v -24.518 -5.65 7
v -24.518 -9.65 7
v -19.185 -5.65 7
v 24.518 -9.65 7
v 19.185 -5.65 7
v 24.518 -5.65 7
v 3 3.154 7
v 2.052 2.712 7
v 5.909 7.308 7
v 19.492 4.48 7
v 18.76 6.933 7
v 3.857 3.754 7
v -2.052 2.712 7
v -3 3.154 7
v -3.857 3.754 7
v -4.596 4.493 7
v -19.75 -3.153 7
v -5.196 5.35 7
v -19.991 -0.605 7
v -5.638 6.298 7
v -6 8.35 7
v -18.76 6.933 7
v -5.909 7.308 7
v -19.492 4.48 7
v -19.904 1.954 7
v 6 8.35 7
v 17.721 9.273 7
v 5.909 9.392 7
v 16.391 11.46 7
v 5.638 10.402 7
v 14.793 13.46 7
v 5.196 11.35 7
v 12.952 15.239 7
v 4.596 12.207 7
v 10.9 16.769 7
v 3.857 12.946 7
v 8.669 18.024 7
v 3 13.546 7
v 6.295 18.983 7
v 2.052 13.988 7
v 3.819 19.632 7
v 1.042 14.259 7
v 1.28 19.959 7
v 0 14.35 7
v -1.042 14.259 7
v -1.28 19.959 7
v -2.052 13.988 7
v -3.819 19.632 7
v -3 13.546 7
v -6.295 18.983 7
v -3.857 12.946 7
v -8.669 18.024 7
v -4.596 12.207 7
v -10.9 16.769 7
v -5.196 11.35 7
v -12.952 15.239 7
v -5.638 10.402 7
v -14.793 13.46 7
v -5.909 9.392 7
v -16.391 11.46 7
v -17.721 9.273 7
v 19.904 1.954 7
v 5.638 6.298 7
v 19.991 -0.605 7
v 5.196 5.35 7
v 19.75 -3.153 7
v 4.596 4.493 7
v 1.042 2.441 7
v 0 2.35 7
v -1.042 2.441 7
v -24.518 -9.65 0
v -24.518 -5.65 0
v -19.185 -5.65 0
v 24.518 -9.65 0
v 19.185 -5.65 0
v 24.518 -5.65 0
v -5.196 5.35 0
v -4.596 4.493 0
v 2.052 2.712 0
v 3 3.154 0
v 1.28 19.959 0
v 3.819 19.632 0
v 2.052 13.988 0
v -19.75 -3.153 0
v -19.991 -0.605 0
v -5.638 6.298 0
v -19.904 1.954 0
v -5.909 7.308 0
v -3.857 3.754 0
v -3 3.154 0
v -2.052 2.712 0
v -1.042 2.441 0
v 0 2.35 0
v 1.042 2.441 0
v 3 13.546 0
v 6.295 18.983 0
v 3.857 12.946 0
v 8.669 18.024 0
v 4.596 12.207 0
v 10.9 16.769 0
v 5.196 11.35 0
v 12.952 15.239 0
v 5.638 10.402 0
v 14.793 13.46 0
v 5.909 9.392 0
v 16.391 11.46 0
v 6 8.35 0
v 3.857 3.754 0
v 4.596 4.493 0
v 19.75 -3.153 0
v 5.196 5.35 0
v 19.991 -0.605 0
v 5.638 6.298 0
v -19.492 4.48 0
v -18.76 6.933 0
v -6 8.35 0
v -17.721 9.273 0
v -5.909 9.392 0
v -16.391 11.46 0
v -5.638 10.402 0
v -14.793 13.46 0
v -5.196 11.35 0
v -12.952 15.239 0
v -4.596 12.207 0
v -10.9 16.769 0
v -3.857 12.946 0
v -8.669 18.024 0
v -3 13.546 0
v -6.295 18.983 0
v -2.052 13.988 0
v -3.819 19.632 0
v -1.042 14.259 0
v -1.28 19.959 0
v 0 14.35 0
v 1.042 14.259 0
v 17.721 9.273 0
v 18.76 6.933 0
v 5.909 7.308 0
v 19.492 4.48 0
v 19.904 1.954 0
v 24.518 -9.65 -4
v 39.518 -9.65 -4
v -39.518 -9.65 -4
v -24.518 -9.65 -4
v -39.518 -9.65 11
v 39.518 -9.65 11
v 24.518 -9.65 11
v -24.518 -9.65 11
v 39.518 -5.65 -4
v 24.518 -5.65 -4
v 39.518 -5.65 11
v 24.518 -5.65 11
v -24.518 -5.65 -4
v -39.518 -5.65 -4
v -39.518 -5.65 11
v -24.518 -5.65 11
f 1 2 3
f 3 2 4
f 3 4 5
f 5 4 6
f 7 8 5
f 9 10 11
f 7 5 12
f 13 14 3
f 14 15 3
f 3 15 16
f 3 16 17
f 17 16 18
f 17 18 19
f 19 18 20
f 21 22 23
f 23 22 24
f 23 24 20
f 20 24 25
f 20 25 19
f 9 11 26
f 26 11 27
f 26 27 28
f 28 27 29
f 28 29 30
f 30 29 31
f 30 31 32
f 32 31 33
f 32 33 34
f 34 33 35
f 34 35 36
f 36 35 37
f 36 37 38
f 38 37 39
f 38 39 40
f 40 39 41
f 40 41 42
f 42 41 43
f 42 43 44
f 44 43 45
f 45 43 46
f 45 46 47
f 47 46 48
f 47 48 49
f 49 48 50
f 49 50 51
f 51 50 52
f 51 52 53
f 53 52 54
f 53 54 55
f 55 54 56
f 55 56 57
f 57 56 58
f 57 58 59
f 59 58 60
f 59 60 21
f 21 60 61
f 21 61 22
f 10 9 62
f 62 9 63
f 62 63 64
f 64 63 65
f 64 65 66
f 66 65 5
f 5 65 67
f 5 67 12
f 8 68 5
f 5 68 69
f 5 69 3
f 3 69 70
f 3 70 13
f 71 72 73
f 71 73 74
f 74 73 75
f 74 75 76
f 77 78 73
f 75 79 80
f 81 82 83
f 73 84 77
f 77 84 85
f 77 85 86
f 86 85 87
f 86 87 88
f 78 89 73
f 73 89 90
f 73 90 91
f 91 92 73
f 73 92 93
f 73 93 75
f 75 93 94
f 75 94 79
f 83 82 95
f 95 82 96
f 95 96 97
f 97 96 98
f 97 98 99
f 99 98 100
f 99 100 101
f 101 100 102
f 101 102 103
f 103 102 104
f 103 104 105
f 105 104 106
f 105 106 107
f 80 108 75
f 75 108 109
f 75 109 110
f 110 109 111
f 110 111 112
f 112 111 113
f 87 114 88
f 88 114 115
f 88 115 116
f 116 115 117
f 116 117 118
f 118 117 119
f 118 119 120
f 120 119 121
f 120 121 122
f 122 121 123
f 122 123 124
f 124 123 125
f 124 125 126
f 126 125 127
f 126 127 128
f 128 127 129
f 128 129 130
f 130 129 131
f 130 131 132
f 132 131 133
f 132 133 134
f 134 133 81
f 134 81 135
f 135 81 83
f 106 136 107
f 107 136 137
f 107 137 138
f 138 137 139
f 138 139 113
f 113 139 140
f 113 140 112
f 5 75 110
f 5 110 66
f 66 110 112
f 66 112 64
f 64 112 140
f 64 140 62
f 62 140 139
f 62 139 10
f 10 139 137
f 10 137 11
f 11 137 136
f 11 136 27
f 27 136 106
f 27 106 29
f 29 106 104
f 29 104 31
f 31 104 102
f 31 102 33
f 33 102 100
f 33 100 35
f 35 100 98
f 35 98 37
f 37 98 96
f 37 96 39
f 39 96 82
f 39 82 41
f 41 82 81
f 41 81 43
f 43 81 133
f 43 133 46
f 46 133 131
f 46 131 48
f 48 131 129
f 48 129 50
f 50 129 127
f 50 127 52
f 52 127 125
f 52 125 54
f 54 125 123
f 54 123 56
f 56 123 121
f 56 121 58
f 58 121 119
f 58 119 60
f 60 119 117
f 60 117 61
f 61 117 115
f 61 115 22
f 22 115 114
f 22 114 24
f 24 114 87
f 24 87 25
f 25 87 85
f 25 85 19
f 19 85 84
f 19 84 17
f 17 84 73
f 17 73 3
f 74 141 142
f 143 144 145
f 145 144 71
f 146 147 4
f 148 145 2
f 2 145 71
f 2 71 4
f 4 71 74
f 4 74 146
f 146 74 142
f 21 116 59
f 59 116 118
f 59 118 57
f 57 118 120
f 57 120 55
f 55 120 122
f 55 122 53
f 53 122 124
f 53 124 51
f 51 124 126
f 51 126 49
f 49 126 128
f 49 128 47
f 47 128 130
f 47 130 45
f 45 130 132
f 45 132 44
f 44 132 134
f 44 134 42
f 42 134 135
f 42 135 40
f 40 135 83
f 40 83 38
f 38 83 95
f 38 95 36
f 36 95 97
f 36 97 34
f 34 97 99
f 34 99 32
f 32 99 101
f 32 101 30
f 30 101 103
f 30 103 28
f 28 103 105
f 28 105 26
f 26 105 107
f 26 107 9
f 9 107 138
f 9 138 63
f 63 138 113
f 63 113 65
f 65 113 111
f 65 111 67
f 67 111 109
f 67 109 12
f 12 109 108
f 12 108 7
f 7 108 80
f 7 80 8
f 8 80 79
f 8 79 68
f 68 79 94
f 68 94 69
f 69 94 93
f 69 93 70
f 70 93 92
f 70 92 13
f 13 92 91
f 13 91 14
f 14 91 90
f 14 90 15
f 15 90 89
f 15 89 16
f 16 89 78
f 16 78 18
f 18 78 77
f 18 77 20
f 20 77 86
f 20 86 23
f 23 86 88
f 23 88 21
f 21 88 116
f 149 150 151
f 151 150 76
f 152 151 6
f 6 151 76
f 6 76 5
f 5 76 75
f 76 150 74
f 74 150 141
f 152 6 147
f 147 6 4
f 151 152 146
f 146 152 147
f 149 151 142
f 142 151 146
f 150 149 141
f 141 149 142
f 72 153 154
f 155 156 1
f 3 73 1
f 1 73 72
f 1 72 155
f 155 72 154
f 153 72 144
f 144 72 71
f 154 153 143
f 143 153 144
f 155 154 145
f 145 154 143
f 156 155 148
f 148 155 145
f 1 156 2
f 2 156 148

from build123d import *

# Parameters (mm, degrees)
SKETCH1_R           = 6
BOSS_EXTRUDE1_DEPTH = 7
BOSS_EXTRUDE2_DEPTH = 4


with BuildPart() as part:
    # Sketch1 → Boss-Extrude1 (new body)
    with BuildSketch(Plane.XY):
        with BuildLine():
            Line((17.517837099, -9.650149397), (-17.517837099, -9.650149397))
            ThreePointArc((-17.517837099, -9.650149397), (0, 20), (17.517837099, -9.650149397))
        make_face()
        with Locations((0, 8.349850603)):
            Circle(SKETCH1_R, mode=Mode.SUBTRACT)
    extrude(amount=BOSS_EXTRUDE1_DEPTH)

    # Sketch5 → Boss-Extrude2 (add)
    with BuildSketch(Plane.XZ.offset(9.650149397)):
        Polygon((-24.517837099, -4), (-24.517837099, 0), (-17.517837099, 0), (-17.517837099, 7), (-24.517837099, 7), (-24.517837099, 11), (-39.517837099, 11), (-39.517837099, -4), align=None)
        Polygon((24.517837099, -4), (39.517837099, -4), (39.517837099, 11), (24.517837099, 11), (24.517837099, 7), (17.517837099, 7), (17.517837099, 0), (24.517837099, 0), align=None)
    extrude(amount=-BOSS_EXTRUDE2_DEPTH)


solid = part.part
